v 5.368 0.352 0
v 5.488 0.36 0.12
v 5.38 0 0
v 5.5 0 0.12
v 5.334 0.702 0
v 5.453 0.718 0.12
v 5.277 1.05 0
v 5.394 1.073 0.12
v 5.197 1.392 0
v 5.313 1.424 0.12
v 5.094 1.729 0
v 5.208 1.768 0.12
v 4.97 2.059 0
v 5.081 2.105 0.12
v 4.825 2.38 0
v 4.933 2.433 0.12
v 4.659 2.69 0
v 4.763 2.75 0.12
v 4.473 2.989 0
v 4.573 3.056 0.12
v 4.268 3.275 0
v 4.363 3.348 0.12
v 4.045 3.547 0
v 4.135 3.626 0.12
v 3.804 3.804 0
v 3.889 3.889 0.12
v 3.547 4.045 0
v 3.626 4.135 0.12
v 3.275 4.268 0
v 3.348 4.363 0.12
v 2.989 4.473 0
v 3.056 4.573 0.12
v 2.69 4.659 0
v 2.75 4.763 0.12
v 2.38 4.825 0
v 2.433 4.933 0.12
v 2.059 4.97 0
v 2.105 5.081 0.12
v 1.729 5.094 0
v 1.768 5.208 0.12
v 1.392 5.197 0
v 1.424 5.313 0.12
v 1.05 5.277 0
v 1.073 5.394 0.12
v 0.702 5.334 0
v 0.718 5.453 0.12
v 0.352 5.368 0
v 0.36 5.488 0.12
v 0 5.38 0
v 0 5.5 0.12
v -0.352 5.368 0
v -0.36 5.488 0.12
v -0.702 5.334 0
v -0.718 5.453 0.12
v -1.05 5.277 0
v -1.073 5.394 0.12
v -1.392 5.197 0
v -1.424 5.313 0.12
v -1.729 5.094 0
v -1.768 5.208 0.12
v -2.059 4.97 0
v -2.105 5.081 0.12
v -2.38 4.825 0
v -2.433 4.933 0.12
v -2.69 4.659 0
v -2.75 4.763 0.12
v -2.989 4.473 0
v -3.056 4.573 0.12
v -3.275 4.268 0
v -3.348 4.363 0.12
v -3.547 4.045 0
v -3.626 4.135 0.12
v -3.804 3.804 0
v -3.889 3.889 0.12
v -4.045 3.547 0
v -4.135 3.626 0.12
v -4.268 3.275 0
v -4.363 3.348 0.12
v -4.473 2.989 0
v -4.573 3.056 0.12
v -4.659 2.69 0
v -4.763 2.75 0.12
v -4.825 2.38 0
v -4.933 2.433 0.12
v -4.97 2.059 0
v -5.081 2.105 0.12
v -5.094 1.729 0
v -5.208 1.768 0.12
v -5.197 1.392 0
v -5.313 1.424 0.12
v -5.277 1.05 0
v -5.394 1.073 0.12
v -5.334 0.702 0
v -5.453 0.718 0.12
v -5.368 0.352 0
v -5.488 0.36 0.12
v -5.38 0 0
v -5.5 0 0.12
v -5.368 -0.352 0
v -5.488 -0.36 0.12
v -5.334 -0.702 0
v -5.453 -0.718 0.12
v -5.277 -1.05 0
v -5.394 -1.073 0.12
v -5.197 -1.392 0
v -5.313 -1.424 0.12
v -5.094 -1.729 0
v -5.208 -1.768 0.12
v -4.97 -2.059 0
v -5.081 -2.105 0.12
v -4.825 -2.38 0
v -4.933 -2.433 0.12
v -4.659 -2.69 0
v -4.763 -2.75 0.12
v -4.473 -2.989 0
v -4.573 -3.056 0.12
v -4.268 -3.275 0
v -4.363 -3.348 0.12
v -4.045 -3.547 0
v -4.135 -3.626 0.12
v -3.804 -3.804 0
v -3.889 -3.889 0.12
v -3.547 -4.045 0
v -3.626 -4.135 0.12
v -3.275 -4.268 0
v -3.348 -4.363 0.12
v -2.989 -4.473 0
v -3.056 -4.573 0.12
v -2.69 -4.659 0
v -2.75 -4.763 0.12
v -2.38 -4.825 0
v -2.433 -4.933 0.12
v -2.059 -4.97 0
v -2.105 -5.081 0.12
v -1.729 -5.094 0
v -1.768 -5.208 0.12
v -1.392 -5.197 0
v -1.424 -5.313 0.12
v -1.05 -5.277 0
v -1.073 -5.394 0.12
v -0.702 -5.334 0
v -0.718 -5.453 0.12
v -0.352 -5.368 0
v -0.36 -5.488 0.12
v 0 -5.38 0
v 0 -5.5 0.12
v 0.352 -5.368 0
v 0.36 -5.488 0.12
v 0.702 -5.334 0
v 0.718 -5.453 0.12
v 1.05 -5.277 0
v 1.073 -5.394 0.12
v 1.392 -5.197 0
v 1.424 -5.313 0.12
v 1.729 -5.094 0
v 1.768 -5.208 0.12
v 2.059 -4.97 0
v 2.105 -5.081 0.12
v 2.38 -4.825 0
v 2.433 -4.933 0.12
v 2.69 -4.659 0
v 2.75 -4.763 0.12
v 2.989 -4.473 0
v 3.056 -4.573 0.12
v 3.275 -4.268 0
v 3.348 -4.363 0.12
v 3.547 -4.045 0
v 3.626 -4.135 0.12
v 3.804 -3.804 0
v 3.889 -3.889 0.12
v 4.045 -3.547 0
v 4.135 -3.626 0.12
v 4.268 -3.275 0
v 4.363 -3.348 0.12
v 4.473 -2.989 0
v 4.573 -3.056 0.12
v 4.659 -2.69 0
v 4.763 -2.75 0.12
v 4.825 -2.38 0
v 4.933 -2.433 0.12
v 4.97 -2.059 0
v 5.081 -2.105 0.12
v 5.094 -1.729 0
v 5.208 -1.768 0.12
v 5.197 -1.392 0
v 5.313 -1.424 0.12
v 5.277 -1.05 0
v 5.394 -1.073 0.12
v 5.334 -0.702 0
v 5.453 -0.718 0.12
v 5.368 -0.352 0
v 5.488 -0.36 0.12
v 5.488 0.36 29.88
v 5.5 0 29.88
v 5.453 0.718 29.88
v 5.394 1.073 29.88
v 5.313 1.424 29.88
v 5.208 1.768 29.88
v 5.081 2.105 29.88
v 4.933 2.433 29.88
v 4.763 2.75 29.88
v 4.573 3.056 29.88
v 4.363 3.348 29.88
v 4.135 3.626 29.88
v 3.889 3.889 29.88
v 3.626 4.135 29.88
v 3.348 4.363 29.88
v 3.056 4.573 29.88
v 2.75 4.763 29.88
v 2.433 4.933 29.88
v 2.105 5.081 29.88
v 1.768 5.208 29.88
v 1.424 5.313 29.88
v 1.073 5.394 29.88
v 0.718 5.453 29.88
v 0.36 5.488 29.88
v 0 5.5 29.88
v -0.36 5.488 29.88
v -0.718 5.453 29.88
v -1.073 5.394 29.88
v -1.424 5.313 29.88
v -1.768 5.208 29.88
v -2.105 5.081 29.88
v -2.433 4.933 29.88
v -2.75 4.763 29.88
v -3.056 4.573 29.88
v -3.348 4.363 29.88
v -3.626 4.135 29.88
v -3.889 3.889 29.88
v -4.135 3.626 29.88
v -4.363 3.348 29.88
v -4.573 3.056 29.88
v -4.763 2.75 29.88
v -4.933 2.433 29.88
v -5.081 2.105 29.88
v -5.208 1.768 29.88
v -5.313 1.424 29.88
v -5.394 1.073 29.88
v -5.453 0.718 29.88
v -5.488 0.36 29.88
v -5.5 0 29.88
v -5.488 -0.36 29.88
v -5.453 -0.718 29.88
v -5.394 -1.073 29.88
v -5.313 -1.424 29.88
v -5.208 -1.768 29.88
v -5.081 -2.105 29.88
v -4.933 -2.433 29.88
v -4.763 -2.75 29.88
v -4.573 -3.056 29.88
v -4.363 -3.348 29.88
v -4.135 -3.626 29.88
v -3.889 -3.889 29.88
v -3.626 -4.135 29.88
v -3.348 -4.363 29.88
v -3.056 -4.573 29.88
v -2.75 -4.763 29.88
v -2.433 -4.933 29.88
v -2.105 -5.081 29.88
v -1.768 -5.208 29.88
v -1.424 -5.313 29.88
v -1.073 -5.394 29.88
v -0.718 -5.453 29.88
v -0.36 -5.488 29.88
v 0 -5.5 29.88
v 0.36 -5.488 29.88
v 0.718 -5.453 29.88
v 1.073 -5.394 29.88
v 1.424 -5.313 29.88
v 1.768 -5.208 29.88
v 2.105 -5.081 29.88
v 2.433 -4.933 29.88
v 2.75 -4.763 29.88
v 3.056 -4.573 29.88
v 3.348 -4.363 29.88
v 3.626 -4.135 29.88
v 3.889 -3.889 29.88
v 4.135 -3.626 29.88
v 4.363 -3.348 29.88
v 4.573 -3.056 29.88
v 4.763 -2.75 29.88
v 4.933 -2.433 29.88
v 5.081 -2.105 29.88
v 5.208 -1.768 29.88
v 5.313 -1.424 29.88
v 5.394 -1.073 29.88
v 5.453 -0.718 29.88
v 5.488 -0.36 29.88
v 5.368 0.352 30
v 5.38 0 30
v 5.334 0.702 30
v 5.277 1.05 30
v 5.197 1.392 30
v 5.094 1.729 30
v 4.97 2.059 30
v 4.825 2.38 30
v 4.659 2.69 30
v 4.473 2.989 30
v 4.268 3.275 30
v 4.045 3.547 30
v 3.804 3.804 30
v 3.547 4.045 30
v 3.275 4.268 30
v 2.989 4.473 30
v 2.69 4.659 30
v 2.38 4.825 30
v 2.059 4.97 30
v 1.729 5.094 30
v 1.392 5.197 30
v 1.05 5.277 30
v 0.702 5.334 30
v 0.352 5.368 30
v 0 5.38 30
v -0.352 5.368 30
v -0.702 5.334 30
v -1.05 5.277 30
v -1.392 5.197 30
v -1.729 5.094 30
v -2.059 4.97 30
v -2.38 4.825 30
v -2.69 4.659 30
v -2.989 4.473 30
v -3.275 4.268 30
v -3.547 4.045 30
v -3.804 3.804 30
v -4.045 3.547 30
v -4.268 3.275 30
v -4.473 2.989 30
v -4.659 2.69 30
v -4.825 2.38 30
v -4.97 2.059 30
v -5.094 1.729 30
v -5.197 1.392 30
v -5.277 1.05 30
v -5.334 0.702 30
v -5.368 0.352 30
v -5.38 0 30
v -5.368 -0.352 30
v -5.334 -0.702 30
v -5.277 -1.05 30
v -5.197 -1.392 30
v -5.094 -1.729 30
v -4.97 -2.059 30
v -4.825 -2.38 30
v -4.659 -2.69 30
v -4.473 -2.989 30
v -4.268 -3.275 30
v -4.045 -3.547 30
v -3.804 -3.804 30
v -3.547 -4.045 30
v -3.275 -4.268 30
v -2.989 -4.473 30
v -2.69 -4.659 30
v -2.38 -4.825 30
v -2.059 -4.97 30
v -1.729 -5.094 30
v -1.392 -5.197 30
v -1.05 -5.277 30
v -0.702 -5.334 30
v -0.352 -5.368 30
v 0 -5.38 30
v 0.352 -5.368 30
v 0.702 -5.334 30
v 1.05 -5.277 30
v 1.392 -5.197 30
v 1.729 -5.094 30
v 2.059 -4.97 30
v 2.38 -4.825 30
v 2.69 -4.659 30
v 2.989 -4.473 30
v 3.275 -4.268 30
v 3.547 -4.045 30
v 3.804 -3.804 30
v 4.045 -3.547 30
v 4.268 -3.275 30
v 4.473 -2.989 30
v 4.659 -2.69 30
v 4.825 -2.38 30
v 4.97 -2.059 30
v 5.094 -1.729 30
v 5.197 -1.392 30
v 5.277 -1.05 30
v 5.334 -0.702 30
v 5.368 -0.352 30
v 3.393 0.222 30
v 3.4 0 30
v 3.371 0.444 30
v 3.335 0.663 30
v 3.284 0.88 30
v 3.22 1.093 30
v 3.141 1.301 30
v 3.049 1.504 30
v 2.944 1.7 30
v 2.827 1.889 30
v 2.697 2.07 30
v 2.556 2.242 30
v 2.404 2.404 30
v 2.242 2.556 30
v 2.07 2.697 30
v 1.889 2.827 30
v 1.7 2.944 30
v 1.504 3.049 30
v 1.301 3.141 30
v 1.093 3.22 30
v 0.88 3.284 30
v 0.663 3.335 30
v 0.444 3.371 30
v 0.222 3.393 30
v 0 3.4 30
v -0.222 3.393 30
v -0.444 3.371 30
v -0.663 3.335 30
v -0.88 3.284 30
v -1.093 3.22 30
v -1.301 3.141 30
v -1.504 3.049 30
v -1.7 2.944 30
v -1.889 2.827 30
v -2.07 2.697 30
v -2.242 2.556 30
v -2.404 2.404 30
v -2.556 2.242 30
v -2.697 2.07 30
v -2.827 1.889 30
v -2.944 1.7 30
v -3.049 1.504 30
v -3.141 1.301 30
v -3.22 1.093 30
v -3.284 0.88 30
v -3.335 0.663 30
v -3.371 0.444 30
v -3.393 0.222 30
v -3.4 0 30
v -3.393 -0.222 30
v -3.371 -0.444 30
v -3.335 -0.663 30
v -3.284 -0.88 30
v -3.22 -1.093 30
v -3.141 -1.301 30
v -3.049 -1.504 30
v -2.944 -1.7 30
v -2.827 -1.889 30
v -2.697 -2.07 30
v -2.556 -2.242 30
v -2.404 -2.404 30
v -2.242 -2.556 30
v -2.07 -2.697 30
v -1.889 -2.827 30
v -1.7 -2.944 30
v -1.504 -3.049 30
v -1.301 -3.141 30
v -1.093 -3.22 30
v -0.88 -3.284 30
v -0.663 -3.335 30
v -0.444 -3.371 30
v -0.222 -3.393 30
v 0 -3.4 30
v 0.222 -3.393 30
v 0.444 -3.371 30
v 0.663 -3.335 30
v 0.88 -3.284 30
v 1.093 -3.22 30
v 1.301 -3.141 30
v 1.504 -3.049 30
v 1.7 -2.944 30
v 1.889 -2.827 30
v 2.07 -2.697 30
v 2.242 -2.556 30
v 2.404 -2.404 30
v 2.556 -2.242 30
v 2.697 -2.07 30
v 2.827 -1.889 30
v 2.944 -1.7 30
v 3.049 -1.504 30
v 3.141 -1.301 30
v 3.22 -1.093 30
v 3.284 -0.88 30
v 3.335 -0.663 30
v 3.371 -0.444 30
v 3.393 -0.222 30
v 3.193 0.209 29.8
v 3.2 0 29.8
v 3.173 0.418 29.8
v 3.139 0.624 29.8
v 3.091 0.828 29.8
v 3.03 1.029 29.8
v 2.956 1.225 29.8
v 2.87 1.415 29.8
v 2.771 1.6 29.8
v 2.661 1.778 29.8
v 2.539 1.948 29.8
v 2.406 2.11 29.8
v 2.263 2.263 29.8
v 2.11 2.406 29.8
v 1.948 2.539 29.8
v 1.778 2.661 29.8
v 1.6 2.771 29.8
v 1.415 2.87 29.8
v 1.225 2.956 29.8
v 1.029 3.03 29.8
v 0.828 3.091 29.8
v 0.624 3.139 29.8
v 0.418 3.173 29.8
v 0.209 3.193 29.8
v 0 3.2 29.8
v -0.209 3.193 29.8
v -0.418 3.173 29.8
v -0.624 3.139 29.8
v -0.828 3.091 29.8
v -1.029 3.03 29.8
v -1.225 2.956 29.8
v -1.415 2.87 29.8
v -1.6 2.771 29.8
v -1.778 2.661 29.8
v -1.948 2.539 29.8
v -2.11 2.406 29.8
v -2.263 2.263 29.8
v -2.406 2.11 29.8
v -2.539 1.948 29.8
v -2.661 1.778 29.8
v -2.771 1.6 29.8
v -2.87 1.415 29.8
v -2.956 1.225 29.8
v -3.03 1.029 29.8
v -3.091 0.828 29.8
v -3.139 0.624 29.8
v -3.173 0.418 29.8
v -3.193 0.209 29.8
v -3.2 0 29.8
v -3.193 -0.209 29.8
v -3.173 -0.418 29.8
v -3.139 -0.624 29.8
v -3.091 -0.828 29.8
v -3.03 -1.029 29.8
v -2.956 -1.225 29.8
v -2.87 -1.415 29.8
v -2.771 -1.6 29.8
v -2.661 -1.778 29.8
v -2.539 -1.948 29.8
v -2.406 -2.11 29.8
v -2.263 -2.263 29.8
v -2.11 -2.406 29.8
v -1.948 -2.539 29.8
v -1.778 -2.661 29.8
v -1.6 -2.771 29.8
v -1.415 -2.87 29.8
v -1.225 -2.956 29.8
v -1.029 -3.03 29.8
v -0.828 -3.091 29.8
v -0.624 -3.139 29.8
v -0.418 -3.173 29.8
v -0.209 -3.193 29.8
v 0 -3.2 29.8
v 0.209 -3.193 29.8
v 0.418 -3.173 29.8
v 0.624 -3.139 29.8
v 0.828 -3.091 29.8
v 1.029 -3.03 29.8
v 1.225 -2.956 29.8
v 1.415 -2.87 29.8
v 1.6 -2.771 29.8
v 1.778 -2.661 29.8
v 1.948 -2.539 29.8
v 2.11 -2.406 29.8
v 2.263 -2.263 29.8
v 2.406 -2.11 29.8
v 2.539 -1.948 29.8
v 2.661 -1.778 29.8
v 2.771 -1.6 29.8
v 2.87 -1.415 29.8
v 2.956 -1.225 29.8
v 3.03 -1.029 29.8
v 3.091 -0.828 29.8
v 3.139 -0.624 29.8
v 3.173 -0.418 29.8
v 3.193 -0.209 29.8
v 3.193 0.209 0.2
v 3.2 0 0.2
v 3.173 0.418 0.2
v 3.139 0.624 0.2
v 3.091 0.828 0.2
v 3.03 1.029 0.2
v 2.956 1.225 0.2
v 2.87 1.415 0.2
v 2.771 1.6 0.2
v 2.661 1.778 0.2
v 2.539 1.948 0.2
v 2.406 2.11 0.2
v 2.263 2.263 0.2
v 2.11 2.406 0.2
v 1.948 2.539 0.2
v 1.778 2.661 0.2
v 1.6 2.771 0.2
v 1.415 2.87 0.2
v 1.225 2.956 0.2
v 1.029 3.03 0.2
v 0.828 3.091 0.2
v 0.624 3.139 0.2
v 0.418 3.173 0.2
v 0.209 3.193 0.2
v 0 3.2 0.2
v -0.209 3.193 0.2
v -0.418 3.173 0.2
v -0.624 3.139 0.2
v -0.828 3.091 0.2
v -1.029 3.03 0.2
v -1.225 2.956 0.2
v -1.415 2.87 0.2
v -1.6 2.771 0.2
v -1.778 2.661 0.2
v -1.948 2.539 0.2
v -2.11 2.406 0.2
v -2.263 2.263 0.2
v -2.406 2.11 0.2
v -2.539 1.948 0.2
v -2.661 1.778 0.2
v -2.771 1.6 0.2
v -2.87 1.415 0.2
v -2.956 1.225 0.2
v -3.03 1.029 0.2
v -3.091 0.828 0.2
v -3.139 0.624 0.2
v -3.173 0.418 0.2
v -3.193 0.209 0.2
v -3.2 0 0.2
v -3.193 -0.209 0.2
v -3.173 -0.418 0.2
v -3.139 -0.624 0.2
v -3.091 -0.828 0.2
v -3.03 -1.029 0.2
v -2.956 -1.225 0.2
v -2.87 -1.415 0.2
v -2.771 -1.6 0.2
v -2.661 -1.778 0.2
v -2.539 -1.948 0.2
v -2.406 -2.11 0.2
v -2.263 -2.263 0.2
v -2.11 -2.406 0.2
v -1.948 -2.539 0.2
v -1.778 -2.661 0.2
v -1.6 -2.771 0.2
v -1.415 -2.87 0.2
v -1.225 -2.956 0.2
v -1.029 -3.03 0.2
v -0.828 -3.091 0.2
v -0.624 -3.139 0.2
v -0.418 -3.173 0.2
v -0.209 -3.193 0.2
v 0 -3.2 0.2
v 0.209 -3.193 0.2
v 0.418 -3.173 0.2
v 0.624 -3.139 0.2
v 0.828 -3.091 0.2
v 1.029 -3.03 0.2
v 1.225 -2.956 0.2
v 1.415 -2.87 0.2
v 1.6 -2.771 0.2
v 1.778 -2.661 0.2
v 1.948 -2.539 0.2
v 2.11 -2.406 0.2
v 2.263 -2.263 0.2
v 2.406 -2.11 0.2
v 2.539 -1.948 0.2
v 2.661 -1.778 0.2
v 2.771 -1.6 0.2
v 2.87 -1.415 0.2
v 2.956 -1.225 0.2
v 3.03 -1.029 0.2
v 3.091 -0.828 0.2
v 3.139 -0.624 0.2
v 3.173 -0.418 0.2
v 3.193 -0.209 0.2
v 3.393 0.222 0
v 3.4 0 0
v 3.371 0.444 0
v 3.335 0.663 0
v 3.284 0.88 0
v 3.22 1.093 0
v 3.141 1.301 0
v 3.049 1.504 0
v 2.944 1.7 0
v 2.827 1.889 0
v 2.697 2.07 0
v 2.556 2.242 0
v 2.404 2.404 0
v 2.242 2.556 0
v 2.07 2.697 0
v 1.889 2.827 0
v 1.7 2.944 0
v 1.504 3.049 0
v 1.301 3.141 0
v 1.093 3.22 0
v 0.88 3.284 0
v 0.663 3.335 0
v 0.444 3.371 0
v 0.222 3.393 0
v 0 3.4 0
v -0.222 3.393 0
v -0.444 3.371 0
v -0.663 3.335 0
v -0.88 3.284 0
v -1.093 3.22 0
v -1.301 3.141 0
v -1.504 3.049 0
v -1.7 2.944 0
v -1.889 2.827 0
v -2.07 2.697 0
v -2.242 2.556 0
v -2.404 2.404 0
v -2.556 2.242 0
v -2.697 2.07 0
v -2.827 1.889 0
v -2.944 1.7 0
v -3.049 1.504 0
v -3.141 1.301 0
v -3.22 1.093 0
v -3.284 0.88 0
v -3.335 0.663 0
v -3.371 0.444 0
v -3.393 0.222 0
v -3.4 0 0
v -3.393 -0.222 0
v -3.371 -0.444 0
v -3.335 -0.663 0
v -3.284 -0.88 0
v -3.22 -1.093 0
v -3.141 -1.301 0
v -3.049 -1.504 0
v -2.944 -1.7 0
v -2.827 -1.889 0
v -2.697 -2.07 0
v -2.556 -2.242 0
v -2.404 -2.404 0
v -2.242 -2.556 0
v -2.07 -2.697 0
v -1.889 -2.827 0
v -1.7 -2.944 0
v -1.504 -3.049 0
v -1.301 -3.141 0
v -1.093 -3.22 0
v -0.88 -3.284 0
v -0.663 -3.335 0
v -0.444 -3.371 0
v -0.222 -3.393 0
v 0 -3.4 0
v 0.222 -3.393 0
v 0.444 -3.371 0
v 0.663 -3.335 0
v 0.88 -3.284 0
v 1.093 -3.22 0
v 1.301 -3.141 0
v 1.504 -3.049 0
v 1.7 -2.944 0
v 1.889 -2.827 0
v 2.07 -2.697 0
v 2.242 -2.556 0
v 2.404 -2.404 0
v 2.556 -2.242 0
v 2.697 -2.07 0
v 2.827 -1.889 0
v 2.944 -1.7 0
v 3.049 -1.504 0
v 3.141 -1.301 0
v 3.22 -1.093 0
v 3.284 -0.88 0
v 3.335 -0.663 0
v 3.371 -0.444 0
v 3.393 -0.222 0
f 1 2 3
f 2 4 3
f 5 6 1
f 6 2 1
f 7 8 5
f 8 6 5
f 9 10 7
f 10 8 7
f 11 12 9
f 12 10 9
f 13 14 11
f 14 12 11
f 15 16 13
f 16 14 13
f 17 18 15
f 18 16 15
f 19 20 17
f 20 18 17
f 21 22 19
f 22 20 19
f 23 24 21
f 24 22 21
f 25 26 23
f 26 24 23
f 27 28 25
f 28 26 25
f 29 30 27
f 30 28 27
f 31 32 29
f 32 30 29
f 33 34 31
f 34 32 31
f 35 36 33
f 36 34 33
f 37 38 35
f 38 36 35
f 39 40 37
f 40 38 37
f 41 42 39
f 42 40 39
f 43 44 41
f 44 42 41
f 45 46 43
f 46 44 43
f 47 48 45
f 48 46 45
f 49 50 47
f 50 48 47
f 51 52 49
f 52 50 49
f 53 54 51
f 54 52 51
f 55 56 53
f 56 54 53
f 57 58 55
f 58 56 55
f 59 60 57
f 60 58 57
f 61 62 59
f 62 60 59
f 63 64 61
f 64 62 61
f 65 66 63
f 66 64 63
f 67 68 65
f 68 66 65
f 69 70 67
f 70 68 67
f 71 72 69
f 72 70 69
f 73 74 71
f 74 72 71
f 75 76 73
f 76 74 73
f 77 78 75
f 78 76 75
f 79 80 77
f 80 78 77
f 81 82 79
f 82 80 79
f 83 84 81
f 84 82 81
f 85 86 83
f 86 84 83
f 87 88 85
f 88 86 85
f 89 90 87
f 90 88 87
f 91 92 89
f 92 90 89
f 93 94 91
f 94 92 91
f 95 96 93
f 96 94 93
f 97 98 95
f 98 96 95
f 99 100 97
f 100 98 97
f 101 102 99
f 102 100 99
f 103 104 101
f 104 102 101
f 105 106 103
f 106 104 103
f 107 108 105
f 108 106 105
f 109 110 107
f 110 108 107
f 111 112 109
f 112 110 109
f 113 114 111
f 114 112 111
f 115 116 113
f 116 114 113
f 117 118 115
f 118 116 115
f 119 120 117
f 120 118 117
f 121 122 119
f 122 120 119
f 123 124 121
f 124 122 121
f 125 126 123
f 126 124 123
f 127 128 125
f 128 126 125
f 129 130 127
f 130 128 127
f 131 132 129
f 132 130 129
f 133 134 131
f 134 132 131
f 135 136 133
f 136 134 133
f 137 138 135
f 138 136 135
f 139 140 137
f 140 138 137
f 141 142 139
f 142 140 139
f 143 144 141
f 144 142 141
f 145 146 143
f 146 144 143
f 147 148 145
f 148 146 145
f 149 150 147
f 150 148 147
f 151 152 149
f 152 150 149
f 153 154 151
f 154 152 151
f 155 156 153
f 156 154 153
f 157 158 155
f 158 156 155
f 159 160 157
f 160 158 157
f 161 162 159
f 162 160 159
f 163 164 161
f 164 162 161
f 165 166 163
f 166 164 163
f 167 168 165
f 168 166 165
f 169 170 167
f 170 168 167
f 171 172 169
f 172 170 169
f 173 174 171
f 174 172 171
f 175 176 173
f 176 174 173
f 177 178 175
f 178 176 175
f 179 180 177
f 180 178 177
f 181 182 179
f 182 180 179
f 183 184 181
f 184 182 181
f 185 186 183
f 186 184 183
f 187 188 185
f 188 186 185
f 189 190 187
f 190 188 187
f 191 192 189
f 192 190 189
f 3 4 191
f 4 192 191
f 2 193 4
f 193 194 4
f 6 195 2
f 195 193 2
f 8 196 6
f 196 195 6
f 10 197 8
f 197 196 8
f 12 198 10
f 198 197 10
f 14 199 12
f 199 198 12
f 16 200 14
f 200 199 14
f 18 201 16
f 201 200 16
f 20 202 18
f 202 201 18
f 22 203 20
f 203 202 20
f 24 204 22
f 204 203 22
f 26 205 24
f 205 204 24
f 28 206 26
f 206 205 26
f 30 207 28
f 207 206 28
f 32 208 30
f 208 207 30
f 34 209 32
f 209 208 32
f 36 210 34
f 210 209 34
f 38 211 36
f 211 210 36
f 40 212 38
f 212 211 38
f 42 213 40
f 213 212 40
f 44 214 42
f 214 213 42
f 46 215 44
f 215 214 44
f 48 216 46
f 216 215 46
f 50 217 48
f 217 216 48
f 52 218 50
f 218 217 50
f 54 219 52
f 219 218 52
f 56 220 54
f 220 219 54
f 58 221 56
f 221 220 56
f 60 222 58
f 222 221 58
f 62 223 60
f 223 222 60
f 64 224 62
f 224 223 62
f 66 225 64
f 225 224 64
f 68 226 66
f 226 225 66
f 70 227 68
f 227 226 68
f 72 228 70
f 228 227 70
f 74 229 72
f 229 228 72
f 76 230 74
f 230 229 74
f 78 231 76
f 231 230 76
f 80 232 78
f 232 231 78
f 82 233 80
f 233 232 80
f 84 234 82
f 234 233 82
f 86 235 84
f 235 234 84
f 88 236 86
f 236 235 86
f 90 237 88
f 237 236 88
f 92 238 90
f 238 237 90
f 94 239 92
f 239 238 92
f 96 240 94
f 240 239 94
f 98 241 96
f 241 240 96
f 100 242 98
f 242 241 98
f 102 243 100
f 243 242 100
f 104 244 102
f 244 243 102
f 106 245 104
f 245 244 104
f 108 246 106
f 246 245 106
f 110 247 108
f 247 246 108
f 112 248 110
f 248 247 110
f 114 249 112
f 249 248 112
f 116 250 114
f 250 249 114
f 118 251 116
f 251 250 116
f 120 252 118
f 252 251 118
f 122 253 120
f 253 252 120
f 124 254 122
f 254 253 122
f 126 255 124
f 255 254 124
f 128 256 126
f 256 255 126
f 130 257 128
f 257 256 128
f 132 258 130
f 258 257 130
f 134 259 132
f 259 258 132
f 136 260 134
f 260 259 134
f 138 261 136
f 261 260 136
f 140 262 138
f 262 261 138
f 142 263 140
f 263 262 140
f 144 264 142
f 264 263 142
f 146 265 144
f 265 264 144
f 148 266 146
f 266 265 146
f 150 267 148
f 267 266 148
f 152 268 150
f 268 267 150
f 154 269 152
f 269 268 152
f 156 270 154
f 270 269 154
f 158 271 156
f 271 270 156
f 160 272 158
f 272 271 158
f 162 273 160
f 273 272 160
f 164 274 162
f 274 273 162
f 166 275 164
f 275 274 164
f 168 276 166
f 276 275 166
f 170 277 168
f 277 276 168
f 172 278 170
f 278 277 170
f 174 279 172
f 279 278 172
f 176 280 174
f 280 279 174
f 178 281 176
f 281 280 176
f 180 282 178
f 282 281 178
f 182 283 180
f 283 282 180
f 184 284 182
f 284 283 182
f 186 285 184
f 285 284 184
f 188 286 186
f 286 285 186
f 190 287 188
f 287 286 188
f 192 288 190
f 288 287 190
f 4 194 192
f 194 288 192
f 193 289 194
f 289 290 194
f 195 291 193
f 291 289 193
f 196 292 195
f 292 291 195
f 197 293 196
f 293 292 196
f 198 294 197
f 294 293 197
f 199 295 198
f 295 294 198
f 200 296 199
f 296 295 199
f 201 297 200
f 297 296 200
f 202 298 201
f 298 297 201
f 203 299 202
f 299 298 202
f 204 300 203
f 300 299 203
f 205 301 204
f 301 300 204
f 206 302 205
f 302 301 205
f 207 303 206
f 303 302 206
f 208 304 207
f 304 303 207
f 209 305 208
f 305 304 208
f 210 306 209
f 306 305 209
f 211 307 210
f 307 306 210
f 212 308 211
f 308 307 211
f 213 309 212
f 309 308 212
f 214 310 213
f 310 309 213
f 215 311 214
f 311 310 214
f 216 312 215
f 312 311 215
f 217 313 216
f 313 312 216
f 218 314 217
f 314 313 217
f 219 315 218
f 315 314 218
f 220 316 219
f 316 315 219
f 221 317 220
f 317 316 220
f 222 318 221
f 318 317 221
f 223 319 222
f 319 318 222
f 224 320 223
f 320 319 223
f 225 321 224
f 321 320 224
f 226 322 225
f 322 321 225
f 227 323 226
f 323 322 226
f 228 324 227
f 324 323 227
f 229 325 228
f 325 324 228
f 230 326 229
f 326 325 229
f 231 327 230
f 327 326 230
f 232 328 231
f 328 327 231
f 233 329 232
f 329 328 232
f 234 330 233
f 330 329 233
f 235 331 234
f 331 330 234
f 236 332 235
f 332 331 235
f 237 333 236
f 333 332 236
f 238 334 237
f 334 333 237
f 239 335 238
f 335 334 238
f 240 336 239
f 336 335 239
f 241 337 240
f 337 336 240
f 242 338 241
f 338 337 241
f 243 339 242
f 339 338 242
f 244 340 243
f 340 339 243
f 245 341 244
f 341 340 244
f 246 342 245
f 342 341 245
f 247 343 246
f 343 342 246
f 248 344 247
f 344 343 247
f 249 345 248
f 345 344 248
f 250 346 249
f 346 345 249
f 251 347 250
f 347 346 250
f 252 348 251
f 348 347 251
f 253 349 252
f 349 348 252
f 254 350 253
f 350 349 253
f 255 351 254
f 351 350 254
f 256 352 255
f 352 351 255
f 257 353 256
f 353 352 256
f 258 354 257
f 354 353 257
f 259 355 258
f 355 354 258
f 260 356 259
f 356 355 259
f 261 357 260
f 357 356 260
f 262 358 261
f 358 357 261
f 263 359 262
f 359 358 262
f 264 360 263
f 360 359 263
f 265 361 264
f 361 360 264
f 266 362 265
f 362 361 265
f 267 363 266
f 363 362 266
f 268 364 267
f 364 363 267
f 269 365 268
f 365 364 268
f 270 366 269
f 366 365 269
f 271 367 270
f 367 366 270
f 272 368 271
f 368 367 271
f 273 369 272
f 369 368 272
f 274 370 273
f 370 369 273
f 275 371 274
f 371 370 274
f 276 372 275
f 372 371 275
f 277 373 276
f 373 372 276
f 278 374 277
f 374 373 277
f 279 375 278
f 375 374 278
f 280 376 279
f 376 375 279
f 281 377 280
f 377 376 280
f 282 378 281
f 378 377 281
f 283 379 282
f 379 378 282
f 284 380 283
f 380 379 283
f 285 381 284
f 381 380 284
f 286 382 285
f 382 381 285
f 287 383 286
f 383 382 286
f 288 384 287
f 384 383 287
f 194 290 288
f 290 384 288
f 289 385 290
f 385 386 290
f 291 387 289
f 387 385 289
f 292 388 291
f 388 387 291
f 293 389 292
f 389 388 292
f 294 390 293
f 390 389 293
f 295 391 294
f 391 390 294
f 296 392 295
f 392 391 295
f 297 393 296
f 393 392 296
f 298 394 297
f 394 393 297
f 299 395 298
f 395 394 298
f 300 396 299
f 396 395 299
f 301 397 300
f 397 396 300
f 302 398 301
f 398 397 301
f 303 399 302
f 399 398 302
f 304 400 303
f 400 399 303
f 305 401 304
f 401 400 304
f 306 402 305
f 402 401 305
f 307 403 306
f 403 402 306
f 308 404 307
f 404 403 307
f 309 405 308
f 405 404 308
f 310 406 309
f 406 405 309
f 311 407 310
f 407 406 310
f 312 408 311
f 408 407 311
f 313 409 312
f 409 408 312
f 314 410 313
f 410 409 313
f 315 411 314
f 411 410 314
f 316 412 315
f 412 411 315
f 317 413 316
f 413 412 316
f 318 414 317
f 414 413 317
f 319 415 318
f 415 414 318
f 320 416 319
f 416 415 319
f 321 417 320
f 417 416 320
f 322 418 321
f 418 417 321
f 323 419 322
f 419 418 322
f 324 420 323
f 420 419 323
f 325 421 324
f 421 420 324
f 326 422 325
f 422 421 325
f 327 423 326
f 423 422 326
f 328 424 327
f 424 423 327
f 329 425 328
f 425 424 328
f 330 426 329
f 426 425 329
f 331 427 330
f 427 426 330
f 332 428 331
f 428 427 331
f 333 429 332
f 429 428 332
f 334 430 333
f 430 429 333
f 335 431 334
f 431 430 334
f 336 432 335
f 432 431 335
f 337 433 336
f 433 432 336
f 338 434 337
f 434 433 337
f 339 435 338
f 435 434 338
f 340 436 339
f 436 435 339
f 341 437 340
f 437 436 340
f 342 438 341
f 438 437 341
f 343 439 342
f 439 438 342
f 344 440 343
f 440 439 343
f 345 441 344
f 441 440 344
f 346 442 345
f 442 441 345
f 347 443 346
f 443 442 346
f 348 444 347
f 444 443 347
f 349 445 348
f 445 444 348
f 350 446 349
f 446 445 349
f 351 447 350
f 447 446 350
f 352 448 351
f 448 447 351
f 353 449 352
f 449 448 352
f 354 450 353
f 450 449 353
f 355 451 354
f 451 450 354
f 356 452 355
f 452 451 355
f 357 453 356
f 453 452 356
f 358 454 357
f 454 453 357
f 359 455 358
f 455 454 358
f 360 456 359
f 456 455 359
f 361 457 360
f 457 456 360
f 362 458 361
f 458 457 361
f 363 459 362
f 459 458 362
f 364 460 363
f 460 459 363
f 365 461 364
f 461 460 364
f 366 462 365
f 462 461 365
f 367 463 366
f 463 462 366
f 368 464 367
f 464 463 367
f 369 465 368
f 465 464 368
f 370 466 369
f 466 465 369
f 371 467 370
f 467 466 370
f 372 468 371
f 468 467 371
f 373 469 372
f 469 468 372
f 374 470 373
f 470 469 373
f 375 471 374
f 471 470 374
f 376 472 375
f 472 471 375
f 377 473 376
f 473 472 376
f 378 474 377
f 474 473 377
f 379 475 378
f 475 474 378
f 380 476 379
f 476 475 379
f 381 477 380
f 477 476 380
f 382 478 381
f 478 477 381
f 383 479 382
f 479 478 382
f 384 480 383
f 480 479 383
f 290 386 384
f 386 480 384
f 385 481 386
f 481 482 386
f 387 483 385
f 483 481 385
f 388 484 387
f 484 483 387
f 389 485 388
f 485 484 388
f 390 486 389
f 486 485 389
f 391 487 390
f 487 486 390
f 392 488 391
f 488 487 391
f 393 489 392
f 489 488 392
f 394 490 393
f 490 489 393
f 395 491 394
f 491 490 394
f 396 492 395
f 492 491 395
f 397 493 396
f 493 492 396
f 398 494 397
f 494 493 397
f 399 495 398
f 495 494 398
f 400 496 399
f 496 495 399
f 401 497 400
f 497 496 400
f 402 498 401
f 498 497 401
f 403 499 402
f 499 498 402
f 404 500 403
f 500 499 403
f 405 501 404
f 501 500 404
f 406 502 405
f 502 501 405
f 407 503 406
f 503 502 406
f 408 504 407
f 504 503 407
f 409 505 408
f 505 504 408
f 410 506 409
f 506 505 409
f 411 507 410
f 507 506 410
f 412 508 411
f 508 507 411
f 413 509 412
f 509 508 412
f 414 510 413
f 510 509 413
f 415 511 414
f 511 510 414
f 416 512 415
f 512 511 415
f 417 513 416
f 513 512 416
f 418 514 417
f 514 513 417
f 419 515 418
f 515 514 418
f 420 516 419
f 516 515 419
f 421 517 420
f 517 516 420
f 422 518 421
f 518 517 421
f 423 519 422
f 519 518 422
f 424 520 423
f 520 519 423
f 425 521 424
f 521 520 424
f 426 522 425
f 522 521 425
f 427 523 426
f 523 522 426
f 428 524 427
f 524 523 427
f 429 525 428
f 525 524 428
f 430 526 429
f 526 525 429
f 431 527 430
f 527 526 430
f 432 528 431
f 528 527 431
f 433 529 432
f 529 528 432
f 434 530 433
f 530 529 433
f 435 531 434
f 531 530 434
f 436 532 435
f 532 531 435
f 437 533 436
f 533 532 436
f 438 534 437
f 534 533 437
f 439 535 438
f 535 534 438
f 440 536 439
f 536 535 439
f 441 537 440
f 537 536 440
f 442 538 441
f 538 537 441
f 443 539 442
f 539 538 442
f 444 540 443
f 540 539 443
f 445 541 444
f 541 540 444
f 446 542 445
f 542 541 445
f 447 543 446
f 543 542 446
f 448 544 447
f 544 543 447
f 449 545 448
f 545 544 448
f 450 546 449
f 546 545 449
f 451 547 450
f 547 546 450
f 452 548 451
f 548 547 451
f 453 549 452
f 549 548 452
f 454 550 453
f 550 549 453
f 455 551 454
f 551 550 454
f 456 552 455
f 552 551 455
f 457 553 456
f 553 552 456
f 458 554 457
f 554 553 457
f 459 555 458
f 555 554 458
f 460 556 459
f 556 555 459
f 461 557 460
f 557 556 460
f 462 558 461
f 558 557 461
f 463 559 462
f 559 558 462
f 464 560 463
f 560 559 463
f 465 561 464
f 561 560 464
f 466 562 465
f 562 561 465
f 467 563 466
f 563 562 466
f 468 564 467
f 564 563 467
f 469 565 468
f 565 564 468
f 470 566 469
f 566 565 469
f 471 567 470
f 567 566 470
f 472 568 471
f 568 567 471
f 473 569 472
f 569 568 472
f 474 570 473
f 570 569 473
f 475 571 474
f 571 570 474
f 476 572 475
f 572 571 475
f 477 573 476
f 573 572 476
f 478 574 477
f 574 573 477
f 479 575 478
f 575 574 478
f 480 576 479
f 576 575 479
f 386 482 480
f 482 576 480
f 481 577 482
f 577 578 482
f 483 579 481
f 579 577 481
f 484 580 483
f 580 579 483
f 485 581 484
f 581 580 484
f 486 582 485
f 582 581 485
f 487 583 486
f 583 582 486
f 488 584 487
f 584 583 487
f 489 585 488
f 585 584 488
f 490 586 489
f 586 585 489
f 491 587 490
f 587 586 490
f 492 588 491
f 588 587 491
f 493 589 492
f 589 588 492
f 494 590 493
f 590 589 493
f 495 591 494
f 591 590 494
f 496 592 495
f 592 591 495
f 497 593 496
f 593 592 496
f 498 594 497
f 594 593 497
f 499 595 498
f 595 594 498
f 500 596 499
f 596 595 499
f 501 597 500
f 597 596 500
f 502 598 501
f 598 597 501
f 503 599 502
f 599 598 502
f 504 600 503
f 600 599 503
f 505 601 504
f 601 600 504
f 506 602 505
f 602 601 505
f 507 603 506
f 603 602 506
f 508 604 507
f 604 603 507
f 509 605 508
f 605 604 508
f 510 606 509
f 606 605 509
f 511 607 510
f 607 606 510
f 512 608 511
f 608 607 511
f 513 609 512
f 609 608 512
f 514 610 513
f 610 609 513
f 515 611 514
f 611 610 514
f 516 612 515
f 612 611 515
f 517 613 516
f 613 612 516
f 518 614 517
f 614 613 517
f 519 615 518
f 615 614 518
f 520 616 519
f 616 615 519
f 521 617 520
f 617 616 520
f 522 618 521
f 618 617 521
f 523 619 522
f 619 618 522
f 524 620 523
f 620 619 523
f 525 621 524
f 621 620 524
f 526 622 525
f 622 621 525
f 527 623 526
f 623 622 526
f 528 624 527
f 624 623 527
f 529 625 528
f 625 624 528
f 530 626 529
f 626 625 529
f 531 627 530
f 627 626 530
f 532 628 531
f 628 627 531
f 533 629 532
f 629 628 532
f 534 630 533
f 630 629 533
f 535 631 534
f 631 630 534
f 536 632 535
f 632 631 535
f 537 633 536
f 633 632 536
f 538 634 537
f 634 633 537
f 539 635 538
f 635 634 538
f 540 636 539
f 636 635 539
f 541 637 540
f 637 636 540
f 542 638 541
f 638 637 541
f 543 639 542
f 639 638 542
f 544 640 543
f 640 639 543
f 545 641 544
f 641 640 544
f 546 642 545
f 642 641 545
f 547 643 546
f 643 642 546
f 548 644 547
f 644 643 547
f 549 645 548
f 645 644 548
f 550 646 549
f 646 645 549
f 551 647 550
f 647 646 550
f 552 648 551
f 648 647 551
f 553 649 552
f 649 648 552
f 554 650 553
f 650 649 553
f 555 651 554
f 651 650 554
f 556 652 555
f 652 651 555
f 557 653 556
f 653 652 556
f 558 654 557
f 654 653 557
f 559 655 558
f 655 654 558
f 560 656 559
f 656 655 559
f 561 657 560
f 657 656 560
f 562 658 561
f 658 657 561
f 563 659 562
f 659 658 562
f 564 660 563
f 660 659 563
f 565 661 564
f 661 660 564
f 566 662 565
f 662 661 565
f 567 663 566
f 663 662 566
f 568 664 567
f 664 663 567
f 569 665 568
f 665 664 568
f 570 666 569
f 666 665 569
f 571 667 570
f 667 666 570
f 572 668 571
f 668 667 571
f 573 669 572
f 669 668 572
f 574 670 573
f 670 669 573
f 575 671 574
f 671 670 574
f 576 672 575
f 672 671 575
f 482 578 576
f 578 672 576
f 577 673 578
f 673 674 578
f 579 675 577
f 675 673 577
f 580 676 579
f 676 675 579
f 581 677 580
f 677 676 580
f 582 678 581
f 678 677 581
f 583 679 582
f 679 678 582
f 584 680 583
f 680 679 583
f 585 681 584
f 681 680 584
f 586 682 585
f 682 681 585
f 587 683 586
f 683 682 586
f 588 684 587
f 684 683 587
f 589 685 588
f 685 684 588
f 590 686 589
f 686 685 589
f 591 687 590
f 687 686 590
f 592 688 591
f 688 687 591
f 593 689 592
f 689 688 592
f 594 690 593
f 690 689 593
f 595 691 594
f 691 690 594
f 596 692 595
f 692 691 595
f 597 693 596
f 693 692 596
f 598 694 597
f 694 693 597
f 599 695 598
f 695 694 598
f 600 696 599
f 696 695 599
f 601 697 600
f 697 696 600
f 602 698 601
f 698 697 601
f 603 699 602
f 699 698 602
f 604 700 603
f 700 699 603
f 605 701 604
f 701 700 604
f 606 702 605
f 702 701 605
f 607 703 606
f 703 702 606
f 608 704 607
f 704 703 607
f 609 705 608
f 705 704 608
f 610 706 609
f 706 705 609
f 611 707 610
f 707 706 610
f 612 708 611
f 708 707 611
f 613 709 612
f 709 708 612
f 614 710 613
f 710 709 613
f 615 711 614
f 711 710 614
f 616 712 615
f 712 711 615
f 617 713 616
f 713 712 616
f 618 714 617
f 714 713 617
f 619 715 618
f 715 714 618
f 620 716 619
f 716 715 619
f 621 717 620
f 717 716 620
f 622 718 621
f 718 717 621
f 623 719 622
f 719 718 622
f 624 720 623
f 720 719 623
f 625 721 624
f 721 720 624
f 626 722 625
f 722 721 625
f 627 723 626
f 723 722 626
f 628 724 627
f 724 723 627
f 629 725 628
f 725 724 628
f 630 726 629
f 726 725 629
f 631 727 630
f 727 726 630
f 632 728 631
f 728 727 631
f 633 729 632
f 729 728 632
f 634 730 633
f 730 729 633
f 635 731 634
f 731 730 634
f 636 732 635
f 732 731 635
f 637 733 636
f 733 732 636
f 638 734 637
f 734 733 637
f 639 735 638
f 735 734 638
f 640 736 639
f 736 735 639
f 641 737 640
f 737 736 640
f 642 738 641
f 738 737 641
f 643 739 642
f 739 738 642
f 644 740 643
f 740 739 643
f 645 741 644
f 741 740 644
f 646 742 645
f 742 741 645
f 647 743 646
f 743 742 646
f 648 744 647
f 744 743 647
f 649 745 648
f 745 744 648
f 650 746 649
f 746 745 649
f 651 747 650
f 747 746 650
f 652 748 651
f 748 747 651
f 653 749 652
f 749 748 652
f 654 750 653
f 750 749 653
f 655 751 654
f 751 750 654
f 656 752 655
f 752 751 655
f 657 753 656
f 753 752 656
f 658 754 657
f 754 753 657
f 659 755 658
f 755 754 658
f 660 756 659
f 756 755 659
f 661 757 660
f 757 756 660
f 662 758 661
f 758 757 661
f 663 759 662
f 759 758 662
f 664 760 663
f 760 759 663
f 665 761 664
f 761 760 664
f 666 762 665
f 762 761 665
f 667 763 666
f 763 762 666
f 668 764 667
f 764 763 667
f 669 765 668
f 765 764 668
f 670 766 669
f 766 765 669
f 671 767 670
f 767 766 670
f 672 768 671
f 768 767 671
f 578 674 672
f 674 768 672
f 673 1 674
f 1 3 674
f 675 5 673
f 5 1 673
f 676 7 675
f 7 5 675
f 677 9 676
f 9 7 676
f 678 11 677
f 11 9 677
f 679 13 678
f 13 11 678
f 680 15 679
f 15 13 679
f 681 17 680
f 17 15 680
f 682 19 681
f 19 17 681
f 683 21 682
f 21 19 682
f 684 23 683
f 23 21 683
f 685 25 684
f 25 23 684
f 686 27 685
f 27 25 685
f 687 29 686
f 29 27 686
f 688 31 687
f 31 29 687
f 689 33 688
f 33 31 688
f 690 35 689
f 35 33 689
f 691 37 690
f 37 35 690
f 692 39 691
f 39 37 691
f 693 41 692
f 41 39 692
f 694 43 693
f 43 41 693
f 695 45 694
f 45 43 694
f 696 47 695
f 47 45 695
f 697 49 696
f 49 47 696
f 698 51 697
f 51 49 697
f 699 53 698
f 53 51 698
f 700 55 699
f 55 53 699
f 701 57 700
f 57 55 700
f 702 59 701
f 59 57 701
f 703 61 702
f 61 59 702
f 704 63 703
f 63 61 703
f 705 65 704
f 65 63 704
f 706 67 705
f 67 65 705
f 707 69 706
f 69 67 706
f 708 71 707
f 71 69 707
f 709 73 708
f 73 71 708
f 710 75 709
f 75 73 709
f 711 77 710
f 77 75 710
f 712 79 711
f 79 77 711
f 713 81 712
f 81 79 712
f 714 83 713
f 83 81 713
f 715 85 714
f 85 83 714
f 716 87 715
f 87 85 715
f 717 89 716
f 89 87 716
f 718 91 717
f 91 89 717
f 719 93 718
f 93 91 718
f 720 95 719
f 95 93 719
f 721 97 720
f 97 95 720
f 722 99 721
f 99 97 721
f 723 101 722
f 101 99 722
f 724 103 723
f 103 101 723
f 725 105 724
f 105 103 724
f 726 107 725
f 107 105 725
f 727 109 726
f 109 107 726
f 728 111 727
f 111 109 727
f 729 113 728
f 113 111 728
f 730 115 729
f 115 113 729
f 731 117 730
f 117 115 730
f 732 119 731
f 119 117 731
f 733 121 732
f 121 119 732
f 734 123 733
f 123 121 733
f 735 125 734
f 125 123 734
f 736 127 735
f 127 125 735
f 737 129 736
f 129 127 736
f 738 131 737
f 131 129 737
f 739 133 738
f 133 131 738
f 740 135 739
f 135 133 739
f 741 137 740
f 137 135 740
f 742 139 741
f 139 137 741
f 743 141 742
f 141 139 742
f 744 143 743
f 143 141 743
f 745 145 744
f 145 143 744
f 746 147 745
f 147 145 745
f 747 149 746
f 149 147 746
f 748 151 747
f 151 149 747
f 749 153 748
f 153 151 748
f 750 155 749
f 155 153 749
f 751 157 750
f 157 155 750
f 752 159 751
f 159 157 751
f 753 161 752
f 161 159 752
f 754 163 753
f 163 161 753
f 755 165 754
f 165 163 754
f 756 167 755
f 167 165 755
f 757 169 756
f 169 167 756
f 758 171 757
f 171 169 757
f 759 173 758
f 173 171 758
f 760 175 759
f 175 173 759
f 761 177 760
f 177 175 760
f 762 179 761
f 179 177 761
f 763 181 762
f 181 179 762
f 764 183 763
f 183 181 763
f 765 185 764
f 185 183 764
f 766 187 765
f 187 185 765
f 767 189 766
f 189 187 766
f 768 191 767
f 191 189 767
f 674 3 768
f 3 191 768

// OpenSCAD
// OOMP generic catalogue model; units: mm.
// Stud length is additional to body depth. Tapping depths are model assumptions.
variant = "full"; // [full, display]
family = "spacer";
connection_type = "plain";
depth_mm = 30;
stud_length_mm = 0;
tapped_depth_mm = 0;
bore_mm = 6.4;
outer_diameter_mm = 11;
across_flats_mm = 6;
thread_nominal_diameter_mm = 3;
thread_pitch_mm = 0.5;
edge_chamfer_mm = 0.12;
mouth_chamfer_mm = 0.2;
angular_segments = 96;
samples_per_pitch = 16;

// Boundary travels up the outside, then down any tapped/plain bore.
// Equal-height rings at shoulders form the annular shoulder faces.
n = angular_segments;
threaded = family == "standoff";
has_stud = connection_type == "stud_to_tapped" || connection_type == "stud_to_stud";
two_studs = connection_type == "stud_to_stud";
through = !threaded || connection_type == "tapped_to_tapped";
pitch = thread_pitch_mm;
diameter = threaded ? thread_nominal_diameter_mm : bore_mm;
minor = diameter - 5*sqrt(3)*pitch/8;
transition = mouth_chamfer_mm + (threaded ? 5*sqrt(3)*pitch/16 : 0);
tip_chamfer = mouth_chamfer_mm + 17*sqrt(3)*pitch/48;
function sorted(v) = len(v)<=1 ? v : let(p=v[0])
    concat(sorted([for(x=v) if(x<p-1e-8) x]), [p], sorted([for(x=v) if(x>p+1e-8) x]));
function reverse(v) = [for(i=[len(v)-1:-1:0]) v[i]];
function theta(i) = i*360/n;
function fract(x) = x-floor(x);
function phase_distance(i,z) = abs(fract(z/pitch-theta(i)/360+0.5)-0.5);
function thread_r(i,z) = minor/2 + min(5*sqrt(3)*pitch/16,
    max(0,(phase_distance(i,z)-0.125)*pitch*sqrt(3)));
function stud_r(i,z,tip) = min(diameter/2 - (variant=="full" ?
    min(17*sqrt(3)*pitch/48,max(0,(phase_distance(i,z)-0.0625)*pitch*sqrt(3))) : 0),
    diameter/2-tip_chamfer+abs(z-tip));
function body_r(i,z) = (threaded ? across_flats_mm/2/cos(theta(i)%60-30) : outer_diameter_mm/2)
    - max(0,edge_chamfer_mm-min(z,depth_mm-z));
function bore_r(i,z) = max(threaded ? (variant=="full" ? thread_r(i,z) : minor/2) : diameter/2,
    diameter/2+mouth_chamfer_mm-(through ? min(z,depth_mm-z) : depth_mm-z));
function stud_z(a,b,tip) = let(count=variant=="full" ? ceil(stud_length_mm/pitch*samples_per_pitch) : 1)
    sorted(concat([for(i=[0:count]) a+(b-a)*i/count], [tip==a ? tip+tip_chamfer : tip-tip_chamfer]));
body_z = sorted([0,edge_chamfer_mm,depth_mm-edge_chamfer_mm,depth_mm]);
low = through ? 0 : depth_mm-tapped_depth_mm;
count = threaded && variant=="full" ? ceil((depth_mm-low)/pitch*samples_per_pitch) : 1;
bore_z = two_studs ? [] : reverse(sorted(concat(
    [for(i=[0:count]) low+(depth_mm-low)*i/count],
    [depth_mm-mouth_chamfer_mm,depth_mm-transition],
    through ? [mouth_chamfer_mm,transition] : [])));
// Ring descriptors: [height, kind, tip]. Kind: 0 body, 1 stud, 2 bore.
rings = concat(
    has_stud ? [for(z=stud_z(-stud_length_mm,0,-stud_length_mm)) [z,1,-stud_length_mm]] : [],
    [for(z=body_z) [z,0,0]],
    two_studs ? [for(z=stud_z(depth_mm,depth_mm+stud_length_mm,depth_mm+stud_length_mm)) [z,1,depth_mm+stud_length_mm]] : [],
    [for(z=bore_z) [z,2,0]]);
function radius(i,ring) = ring[1]==0 ? body_r(i,ring[0]) :
    ring[1]==1 ? stud_r(i,ring[0],ring[2]) : bore_r(i,ring[0]);
points = concat([for(ring=rings) for(i=[0:n-1])
    [radius(i,ring)*cos(theta(i)),radius(i,ring)*sin(theta(i)),ring[0]]],
    through ? [] : [[0,0,rings[0][0]],[0,0,rings[len(rings)-1][0]]]);
center = len(rings)*n;
last = (len(rings)-1)*n;
// OpenSCAD winding is opposite to STL winding.
faces = concat(
    [for(j=[0:len(rings)-(through ? 1 : 2)]) for(i=[0:n-1]) each
        let(a=j*n+i,b=j*n+(i+1)%n,c=((j+1)%len(rings))*n+(i+1)%n,d=((j+1)%len(rings))*n+i)
        [[a,c,b],[a,d,c]]],
    through ? [] : [for(i=[0:n-1]) each let(k=(i+1)%n)
        [[center,i,k],[center+1,last+k,last+i]]]);
assert(family=="spacer" || family=="standoff");
assert(!threaded || connection_type=="tapped_to_tapped" || has_stud);
assert(depth_mm>0 && diameter>0 && pitch>0);
assert(variant=="full" || variant=="display");
assert(n>=24 && n%12==0 && samples_per_pitch>=8);
assert(mouth_chamfer_mm>0 && mouth_chamfer_mm<depth_mm/2);
assert(edge_chamfer_mm>=0 && edge_chamfer_mm<depth_mm/2);
assert(diameter+4*max(mouth_chamfer_mm,edge_chamfer_mm) < (threaded ? across_flats_mm : outer_diameter_mm));
assert(!has_stud || stud_length_mm>2*mouth_chamfer_mm);
assert(!through || !threaded || 2*transition<depth_mm);
assert(connection_type!="stud_to_tapped" || (tapped_depth_mm>transition && tapped_depth_mm<depth_mm));
color([0.86,0.85,0.81]) polyhedron(points=points,faces=faces,convexity=20);
